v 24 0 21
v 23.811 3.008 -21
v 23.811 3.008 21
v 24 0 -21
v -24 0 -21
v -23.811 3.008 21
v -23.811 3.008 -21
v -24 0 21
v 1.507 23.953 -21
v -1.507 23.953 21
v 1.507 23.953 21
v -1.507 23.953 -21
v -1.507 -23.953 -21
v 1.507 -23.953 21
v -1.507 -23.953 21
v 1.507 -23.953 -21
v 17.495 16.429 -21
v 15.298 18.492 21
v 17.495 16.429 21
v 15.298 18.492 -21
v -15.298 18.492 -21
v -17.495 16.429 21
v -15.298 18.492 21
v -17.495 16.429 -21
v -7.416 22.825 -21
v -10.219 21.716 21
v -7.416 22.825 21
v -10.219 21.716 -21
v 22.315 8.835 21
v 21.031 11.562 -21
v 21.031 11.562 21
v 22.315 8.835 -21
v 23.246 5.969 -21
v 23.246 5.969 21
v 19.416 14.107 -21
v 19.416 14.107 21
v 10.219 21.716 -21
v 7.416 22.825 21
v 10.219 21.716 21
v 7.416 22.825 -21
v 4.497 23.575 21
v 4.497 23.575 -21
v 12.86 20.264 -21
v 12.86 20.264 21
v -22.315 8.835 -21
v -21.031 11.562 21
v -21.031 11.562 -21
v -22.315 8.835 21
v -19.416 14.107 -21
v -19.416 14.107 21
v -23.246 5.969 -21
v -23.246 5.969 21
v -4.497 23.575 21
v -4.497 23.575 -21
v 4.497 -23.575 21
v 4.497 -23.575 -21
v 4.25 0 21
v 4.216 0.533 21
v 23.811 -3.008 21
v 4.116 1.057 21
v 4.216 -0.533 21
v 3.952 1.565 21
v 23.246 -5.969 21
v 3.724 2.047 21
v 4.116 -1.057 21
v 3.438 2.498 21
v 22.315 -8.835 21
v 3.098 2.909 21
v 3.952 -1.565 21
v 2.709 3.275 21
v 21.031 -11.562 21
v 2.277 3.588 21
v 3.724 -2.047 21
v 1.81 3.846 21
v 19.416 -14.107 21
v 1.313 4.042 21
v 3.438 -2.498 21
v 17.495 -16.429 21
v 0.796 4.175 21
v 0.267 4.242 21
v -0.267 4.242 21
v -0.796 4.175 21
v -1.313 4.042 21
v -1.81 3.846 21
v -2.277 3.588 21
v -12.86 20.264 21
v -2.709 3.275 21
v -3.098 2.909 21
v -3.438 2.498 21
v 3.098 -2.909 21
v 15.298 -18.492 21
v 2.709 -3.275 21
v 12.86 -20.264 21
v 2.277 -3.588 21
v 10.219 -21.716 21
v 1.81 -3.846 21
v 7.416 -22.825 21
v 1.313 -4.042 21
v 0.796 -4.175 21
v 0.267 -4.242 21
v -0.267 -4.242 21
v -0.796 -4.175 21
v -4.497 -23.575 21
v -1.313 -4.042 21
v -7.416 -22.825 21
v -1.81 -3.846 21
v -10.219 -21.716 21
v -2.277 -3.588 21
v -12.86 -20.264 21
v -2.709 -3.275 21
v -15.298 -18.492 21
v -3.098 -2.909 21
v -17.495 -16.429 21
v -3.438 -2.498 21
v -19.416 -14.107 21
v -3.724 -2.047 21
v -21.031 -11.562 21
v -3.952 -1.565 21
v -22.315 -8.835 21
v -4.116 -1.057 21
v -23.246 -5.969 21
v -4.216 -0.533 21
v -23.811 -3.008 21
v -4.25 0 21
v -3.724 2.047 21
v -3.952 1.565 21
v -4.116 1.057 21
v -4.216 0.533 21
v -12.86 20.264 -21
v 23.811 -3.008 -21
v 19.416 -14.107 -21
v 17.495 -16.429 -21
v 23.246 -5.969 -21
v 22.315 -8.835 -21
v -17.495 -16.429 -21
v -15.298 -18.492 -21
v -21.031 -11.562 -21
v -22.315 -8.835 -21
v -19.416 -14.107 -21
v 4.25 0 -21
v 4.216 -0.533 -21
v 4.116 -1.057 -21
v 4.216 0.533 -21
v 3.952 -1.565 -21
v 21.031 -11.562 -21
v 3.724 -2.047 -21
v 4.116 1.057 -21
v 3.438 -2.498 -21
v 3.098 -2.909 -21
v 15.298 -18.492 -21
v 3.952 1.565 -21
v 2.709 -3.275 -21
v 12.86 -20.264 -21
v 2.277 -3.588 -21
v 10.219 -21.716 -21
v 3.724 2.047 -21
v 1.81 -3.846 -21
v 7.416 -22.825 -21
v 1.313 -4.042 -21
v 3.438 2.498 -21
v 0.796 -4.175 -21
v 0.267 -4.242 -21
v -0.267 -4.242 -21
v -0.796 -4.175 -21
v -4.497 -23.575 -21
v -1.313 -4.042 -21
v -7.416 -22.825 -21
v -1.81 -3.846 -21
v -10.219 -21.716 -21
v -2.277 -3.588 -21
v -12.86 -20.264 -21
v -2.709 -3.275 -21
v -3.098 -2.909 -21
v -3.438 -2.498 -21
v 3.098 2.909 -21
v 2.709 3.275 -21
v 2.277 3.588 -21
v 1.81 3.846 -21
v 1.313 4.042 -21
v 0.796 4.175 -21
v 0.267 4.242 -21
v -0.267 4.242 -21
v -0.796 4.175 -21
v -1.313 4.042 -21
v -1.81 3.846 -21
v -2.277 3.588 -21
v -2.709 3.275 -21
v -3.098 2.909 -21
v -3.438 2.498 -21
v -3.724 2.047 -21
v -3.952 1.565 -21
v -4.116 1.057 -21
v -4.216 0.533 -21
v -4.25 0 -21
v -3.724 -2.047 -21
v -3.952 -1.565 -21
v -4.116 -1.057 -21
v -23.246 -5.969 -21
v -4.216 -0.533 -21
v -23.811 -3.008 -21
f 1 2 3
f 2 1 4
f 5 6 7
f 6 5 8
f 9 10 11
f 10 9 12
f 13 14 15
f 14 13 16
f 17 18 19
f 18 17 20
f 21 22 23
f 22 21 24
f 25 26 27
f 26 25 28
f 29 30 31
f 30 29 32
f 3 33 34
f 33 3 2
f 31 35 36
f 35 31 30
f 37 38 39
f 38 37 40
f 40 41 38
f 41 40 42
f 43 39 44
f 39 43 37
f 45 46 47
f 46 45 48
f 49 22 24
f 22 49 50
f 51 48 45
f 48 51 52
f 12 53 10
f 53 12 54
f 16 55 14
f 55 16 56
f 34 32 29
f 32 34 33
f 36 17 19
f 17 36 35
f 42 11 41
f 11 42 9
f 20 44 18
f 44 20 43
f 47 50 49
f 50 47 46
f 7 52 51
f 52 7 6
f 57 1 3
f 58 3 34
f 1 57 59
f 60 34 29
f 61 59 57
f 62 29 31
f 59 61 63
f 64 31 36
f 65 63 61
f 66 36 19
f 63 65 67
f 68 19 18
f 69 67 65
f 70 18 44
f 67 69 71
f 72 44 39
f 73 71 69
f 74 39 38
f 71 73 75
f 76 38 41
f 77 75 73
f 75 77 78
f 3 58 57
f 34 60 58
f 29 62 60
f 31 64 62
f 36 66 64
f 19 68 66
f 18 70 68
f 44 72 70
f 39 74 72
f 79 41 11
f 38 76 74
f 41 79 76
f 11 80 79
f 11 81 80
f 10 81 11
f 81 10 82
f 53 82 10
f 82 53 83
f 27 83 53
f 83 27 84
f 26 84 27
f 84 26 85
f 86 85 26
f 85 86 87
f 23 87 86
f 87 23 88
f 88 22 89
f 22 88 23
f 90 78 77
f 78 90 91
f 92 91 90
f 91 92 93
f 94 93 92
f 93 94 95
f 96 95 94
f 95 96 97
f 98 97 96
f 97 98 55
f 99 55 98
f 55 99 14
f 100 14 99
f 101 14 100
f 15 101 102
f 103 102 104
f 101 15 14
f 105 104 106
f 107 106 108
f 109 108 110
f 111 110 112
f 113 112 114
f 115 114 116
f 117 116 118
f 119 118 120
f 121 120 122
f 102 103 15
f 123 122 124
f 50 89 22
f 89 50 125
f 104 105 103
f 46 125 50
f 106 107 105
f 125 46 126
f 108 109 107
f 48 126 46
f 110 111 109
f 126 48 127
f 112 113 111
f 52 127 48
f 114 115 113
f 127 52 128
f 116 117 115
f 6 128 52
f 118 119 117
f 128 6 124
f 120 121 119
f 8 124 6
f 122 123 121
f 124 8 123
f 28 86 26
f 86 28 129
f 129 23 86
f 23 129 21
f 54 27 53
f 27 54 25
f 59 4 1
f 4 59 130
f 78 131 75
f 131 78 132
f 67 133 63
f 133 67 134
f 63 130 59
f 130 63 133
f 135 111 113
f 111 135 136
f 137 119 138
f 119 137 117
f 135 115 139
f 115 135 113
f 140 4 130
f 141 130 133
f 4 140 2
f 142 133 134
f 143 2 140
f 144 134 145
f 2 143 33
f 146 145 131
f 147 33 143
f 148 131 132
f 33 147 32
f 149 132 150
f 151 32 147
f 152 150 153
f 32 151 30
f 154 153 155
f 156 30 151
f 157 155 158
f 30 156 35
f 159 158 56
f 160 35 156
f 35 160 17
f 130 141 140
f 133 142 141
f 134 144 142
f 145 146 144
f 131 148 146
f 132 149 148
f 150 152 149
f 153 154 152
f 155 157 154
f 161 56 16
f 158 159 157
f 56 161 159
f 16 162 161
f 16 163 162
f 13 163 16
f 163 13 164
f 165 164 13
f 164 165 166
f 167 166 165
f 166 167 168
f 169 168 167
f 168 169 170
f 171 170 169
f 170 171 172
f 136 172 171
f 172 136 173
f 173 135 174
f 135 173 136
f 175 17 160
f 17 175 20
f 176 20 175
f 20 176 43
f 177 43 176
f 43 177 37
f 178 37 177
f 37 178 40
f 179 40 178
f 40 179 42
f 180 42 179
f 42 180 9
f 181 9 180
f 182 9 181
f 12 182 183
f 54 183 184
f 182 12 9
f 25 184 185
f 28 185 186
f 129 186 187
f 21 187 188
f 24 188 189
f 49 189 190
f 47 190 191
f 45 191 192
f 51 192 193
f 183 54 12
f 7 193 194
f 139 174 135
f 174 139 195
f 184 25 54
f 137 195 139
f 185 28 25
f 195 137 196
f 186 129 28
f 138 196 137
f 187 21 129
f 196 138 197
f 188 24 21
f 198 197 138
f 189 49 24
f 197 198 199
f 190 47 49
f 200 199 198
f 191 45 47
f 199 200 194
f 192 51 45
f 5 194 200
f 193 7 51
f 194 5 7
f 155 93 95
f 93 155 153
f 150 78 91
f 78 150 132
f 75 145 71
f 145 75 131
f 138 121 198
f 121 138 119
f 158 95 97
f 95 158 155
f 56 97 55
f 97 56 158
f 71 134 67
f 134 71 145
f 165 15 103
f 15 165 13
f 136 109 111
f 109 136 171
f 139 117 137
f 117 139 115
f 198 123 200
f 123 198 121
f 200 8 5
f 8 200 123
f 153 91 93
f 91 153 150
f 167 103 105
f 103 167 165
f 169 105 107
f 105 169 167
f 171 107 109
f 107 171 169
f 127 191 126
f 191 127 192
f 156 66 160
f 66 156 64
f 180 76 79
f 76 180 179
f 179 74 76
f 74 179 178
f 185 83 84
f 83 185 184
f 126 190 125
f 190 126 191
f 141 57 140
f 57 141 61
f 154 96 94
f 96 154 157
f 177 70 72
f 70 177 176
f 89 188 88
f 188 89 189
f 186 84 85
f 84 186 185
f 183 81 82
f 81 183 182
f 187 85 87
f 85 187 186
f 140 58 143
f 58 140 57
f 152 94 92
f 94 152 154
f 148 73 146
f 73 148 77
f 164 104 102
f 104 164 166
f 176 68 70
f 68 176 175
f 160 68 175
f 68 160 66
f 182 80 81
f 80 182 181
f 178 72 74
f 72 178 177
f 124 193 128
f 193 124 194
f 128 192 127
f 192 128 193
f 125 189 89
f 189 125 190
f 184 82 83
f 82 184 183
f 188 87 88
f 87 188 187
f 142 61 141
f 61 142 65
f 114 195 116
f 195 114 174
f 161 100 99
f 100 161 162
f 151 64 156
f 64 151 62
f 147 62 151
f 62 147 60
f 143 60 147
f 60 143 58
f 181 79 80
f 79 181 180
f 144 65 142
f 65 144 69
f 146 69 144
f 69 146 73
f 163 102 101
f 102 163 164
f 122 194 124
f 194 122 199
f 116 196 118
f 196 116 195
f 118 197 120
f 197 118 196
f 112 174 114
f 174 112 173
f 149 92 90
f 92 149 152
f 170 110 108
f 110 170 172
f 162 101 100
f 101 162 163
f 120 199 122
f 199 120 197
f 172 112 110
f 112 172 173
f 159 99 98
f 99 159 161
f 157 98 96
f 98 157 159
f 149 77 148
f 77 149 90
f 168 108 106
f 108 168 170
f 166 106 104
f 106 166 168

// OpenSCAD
$fn = 50;


difference() {
	union() {
		translate(v = [0, 0, -21.0000000000]) {
			cylinder(h = 42, r = 24.0000000000);
		}
	}
	union() {
		translate(v = [0, 0, -100.0000000000]) {
			cylinder(h = 200, r = 4.2500000000);
		}
	}
}
